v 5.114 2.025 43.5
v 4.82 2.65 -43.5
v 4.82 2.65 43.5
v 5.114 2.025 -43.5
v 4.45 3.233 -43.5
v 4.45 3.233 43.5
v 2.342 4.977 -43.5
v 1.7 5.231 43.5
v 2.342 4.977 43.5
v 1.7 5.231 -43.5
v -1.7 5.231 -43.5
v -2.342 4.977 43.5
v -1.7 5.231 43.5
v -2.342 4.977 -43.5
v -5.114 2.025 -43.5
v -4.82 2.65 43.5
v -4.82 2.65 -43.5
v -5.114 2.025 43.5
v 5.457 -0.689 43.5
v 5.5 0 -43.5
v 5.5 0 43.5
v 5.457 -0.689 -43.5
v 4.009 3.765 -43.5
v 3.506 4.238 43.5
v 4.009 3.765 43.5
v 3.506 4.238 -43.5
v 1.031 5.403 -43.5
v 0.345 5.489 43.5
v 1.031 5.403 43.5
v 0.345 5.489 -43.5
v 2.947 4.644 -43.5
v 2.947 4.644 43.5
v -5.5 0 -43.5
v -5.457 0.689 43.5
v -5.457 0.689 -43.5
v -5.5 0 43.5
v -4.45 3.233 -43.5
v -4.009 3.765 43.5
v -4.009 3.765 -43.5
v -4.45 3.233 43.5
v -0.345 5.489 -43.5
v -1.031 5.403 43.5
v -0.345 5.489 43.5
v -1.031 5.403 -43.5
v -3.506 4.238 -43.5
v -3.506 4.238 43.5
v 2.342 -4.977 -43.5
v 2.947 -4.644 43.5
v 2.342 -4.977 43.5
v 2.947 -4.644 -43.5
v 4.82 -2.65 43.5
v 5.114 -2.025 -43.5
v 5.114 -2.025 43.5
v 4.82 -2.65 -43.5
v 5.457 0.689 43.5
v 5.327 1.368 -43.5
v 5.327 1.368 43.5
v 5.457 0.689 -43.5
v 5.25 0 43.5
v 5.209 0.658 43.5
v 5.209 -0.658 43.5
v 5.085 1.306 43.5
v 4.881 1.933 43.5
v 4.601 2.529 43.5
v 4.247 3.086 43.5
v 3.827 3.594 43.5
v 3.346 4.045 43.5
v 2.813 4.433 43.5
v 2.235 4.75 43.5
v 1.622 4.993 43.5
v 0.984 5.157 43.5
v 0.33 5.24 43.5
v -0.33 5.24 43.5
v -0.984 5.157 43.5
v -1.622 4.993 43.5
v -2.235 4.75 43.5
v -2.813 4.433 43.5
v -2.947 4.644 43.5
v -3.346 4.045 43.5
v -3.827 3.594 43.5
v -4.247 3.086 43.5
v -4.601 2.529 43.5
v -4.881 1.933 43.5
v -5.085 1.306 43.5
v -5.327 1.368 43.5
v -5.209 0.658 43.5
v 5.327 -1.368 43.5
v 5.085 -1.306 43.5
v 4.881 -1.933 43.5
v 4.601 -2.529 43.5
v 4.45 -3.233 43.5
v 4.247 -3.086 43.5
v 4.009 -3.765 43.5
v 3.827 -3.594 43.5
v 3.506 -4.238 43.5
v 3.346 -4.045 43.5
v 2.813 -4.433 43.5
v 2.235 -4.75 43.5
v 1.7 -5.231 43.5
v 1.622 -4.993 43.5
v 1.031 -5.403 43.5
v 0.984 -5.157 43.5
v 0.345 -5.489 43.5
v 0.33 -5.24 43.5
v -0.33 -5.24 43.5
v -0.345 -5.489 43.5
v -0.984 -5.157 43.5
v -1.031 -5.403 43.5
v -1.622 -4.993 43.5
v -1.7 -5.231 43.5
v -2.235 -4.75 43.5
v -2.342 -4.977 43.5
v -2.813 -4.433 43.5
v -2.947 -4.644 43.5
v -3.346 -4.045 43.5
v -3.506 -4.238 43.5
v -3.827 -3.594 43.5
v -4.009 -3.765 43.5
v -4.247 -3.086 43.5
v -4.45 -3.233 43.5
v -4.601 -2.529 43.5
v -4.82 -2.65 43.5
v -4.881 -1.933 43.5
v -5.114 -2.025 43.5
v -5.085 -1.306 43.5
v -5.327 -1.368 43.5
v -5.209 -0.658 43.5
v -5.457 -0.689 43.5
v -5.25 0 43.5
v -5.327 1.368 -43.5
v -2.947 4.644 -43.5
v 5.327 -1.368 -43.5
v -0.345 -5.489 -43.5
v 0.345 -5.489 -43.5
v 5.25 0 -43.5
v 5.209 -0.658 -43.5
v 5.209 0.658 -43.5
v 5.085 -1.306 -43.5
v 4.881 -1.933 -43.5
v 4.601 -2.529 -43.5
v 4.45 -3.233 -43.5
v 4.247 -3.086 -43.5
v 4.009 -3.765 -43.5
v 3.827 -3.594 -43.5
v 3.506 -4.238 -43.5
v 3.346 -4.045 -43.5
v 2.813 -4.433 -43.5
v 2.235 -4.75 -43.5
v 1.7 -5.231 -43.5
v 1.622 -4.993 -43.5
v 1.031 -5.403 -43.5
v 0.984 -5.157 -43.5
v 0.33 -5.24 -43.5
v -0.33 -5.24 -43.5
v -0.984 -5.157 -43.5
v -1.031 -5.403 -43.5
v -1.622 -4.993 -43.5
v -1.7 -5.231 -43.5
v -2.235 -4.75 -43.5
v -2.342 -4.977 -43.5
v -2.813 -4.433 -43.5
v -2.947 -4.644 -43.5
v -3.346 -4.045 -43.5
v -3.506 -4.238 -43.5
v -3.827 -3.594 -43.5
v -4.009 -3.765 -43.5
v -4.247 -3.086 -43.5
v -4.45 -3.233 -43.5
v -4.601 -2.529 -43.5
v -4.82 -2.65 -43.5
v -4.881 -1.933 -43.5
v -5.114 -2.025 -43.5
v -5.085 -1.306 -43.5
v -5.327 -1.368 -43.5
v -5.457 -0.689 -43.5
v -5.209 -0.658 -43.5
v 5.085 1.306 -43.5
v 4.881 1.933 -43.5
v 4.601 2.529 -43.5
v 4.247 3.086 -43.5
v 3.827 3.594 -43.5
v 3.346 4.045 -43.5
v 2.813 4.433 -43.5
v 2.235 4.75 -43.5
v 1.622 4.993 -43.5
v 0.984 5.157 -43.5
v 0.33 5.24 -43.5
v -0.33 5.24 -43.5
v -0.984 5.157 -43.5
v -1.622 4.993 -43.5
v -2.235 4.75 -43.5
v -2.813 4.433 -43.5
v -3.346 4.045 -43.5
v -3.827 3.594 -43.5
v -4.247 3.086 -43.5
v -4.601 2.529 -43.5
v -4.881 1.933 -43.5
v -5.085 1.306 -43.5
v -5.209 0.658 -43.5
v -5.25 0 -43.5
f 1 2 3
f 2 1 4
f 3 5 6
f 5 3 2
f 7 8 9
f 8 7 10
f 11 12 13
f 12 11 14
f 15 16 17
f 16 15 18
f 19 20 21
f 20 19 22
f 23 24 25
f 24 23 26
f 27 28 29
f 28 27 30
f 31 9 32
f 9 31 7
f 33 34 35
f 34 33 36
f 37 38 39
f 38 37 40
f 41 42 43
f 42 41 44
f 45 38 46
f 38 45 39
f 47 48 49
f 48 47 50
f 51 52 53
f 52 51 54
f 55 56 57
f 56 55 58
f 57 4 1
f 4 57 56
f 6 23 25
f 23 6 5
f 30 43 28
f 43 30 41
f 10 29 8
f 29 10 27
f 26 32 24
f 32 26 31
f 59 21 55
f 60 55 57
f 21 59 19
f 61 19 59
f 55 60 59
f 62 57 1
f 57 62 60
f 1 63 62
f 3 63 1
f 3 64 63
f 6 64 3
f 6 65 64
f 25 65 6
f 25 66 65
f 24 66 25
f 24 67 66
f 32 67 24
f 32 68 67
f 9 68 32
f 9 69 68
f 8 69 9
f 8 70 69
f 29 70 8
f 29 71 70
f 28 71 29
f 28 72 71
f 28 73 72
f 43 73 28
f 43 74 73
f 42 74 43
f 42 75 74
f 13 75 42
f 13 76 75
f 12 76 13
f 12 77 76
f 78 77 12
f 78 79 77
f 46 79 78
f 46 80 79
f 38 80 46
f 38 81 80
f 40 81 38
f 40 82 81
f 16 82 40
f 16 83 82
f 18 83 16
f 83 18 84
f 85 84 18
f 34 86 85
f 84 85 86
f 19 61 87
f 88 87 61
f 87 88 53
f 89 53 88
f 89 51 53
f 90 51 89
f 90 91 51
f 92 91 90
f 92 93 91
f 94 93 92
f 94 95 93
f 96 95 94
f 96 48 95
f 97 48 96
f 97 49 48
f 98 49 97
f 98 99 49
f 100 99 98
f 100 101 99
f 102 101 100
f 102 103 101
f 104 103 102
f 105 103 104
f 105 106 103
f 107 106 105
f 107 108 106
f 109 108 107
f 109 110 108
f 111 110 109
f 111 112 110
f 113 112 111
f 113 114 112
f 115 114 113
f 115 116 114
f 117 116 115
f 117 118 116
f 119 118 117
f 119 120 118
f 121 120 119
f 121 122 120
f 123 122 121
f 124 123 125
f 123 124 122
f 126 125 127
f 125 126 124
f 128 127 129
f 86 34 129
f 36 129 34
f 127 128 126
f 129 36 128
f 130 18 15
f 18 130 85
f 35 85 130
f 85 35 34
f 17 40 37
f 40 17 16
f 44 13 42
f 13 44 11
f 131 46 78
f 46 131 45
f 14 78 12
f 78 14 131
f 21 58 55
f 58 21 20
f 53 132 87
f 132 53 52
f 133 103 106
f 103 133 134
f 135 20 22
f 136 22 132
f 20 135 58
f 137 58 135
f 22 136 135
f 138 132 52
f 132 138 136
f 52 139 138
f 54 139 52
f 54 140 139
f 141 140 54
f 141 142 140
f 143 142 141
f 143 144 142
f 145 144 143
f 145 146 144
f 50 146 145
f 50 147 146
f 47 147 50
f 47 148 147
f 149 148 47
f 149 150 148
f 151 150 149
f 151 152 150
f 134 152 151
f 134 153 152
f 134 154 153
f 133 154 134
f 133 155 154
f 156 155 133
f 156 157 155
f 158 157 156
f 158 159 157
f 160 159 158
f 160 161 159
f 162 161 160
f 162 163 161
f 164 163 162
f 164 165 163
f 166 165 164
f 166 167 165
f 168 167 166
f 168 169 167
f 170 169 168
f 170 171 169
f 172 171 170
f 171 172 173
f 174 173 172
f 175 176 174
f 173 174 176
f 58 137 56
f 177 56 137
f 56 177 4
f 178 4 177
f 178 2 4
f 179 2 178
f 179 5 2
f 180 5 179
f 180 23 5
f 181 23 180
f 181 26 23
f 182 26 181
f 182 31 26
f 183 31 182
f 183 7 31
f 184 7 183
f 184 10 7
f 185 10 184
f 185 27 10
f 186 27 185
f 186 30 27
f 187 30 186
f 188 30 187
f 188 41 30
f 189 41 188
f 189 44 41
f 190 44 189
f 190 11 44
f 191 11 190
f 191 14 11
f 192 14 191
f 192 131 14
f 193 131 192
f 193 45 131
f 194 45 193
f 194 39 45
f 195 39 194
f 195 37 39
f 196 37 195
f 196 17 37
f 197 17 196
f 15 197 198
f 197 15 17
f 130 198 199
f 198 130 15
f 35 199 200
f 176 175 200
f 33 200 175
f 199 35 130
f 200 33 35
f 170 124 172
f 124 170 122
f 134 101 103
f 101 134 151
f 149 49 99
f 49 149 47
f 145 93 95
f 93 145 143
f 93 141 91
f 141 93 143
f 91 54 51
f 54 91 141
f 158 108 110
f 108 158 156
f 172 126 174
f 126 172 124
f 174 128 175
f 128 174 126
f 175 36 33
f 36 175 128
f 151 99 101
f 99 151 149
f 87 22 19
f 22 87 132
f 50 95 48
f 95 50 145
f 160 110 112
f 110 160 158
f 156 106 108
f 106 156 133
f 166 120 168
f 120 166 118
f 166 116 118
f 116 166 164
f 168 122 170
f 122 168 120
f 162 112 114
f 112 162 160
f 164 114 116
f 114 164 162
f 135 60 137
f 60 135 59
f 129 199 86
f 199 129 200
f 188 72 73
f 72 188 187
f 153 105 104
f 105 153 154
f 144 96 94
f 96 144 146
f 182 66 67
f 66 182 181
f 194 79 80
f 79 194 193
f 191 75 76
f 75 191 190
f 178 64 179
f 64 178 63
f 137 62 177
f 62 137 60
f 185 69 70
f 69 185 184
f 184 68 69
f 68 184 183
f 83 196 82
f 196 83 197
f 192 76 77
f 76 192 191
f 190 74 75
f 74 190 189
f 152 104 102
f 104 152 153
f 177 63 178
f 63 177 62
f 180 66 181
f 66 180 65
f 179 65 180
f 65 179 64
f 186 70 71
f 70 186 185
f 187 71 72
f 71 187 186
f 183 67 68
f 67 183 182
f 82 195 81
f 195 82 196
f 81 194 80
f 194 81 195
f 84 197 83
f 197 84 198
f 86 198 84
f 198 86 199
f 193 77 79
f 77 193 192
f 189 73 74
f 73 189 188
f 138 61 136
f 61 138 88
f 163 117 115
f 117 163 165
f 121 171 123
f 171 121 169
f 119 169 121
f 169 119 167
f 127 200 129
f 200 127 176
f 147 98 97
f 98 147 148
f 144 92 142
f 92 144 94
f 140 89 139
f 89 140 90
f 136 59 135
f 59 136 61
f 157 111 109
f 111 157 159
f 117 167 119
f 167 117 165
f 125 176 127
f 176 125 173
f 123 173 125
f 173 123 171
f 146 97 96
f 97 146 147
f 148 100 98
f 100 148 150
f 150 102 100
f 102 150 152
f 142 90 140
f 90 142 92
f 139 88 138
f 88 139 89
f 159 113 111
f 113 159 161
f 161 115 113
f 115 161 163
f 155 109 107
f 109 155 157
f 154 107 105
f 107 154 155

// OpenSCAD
$fn = 50;


difference() {
	union() {
		translate(v = [0, 0, -43.5000000000]) {
			cylinder(h = 87, r = 5.5000000000);
		}
	}
	union() {
		translate(v = [0, 0, -100.0000000000]) {
			cylinder(h = 200, r = 5.2500000000);
		}
	}
}
